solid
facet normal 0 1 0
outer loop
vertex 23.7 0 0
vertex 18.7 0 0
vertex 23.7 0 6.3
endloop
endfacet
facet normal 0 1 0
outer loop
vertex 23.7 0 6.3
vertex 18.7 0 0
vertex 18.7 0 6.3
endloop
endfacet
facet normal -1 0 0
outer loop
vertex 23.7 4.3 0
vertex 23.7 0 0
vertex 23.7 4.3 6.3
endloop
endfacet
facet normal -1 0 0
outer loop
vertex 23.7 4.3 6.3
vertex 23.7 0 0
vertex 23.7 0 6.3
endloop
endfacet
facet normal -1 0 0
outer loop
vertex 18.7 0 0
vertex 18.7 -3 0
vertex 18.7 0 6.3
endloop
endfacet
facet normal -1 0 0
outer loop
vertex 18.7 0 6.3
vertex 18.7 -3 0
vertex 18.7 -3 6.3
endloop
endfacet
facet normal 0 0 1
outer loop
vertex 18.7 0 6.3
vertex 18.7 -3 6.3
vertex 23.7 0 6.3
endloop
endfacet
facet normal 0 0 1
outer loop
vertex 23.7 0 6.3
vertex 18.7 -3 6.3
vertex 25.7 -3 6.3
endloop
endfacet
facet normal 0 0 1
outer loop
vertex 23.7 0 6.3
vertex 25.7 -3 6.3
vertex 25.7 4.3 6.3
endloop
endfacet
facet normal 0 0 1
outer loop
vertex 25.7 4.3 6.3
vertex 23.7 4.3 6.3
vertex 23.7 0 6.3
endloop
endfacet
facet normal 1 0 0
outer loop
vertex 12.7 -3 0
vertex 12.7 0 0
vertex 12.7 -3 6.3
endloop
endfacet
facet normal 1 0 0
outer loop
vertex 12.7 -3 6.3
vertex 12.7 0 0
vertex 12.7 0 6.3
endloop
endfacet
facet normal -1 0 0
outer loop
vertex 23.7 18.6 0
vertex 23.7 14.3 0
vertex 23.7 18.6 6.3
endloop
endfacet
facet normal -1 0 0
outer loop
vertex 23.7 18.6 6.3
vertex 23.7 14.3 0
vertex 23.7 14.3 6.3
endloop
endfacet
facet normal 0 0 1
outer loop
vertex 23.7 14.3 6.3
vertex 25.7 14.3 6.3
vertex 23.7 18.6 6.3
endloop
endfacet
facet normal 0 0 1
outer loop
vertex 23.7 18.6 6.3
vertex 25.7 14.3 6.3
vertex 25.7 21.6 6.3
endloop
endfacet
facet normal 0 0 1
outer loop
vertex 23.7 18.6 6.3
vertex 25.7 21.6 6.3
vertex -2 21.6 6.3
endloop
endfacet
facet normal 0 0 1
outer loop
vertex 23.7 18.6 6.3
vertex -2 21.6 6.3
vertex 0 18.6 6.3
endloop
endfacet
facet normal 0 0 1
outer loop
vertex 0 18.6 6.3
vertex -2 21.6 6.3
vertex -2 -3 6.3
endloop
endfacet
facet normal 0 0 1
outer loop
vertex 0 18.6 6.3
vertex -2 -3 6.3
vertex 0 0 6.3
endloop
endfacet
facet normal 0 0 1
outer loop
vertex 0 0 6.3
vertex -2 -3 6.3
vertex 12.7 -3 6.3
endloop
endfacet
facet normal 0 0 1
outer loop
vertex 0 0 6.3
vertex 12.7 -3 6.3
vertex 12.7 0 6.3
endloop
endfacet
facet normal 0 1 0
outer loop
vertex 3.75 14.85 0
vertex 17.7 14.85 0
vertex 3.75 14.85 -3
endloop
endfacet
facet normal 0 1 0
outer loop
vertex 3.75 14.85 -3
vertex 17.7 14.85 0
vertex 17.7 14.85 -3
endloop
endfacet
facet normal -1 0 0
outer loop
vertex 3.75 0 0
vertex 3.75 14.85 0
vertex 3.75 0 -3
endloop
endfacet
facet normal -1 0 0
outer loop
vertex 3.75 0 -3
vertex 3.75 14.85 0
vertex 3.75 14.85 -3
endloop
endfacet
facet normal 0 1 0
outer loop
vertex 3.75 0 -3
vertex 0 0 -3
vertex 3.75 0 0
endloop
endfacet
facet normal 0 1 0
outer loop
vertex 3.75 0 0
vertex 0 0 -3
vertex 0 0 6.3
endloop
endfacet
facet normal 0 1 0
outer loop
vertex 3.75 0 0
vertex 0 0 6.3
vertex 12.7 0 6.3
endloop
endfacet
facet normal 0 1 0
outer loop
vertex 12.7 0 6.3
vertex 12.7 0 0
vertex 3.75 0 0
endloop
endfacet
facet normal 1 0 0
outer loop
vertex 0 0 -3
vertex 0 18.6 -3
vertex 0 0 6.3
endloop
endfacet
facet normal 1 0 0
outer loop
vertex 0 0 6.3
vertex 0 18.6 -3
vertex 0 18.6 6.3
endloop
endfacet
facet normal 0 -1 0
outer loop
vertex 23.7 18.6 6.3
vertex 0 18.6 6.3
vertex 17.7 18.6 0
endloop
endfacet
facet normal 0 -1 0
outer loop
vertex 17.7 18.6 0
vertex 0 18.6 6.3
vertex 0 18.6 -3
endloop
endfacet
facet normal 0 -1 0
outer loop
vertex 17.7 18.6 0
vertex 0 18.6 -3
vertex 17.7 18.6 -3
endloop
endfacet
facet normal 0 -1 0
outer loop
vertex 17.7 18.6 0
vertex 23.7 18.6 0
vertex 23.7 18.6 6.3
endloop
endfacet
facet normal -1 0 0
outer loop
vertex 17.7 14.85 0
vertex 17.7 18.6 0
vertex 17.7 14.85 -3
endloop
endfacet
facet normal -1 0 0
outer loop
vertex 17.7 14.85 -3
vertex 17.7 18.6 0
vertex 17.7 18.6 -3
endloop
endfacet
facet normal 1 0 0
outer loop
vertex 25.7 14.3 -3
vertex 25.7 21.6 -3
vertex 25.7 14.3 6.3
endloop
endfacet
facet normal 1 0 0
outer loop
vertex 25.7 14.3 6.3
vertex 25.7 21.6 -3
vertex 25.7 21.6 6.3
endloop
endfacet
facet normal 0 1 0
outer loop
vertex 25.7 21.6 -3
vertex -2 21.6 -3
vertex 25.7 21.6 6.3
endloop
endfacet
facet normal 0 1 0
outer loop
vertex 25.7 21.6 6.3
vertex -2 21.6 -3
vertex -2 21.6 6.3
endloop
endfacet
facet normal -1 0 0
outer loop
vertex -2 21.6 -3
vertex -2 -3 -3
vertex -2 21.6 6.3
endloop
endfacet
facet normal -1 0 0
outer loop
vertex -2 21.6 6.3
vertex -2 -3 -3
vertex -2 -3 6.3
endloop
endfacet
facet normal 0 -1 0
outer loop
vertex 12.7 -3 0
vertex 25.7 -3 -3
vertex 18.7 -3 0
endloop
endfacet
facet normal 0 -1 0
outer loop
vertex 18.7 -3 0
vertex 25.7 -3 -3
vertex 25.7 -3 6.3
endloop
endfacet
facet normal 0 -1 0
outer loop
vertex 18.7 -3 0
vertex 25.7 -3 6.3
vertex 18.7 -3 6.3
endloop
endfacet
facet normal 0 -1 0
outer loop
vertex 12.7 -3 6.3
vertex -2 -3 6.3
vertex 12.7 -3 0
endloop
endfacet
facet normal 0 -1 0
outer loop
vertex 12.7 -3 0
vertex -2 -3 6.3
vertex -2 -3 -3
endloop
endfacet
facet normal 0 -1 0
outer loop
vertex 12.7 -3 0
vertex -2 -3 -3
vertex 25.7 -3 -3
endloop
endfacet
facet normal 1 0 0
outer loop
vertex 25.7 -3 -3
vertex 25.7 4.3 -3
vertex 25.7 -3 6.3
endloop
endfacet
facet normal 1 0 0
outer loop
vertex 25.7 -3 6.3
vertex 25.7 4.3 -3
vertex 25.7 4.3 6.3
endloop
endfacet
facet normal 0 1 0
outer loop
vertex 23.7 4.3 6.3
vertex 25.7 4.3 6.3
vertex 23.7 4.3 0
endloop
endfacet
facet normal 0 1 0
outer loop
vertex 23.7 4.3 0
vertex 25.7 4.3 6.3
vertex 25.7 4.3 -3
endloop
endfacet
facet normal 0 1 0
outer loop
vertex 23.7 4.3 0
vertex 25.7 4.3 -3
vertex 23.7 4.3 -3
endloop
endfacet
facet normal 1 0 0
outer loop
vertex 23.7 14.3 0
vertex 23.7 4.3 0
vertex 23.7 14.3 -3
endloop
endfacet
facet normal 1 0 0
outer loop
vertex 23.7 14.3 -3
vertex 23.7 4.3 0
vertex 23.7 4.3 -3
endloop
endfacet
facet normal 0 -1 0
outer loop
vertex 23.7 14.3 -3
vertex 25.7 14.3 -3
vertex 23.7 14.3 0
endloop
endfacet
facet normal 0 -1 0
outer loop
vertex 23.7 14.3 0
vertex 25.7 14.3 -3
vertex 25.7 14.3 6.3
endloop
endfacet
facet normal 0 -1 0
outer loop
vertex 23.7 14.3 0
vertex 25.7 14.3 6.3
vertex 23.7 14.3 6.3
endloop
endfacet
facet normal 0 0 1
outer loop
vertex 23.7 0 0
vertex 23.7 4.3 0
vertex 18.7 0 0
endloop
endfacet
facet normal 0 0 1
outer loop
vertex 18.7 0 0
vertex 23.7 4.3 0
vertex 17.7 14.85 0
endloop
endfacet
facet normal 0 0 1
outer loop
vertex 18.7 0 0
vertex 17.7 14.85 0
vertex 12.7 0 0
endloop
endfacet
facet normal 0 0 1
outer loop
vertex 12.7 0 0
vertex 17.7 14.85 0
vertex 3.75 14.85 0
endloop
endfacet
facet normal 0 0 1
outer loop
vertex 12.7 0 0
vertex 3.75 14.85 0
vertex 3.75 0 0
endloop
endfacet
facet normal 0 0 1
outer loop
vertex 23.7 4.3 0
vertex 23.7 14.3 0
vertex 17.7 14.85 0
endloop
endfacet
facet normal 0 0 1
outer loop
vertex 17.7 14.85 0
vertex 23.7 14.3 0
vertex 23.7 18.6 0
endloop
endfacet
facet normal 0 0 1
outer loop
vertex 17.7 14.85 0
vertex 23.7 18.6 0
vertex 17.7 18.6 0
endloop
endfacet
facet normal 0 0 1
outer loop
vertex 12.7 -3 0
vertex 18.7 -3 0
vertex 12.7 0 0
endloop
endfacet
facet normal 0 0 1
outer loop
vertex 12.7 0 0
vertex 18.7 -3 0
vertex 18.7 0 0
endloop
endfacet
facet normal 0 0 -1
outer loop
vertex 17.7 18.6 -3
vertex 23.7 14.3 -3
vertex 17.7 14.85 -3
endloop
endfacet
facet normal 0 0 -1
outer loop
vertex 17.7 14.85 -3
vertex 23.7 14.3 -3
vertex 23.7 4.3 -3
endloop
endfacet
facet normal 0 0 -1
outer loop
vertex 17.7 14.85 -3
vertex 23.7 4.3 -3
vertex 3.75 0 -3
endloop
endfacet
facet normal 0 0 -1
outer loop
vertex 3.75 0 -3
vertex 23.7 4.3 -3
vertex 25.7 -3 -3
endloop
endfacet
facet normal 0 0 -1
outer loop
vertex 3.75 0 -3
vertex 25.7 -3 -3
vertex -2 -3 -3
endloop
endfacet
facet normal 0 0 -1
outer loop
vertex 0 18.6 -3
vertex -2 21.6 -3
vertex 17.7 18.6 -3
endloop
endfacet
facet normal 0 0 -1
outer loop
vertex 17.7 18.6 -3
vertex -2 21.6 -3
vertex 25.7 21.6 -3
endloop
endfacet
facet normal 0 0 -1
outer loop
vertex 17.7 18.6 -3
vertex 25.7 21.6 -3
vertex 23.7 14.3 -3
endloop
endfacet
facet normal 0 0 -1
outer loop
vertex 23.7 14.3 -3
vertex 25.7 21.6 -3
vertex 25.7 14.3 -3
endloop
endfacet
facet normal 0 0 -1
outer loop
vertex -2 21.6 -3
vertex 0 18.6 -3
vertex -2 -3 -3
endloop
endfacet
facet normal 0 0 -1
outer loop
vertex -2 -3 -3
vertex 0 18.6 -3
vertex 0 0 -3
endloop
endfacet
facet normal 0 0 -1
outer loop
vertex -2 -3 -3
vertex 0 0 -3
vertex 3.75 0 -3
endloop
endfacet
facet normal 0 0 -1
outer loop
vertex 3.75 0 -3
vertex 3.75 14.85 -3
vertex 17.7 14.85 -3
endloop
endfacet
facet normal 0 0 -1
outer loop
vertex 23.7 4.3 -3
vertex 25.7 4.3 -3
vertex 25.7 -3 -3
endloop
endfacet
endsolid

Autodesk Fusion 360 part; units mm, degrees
sketch "Sketch1" plane through (0, 0, 0) normal (0, 0, 1) x (1, 0, 0) in component "case"
  line L0 (0, 0) -> (23.7, 0)
  line L1 (23.7, 0) -> (23.7, 18.6)
  line L2 (23.7, 18.6) -> (0, 18.6)
  line L3 (0, 18.6) -> (0, 0)
  circle A0 centre (21, 16.05) radius 1.5
  circle A1 centre (21, 2.55) radius 1.5
  line L4 (21, 16.05) -> (21, 2.55) construction
  line L5 (23.7, 9.3) -> (0, 9.3) construction
  line L6 (3.75, 0) -> (3.75, 14.85)
  line L7 (3.75, 14.85) -> (17.7, 14.85)
  line L8 (17.7, 14.85) -> (17.7, 18.6)
  line L9 (-2, 21.6) -> (25.7, 21.6)
  line L10 (25.7, 21.6) -> (25.7, -3)
  line L11 (25.7, -3) -> (-2, -3)
  line L12 (-2, -3) -> (-2, 21.6)
  line L13 (11.85, -3) -> (11.85, 21.6) construction
  line L14 (18.7, 0) -> (18.7, -3)
  line L15 (12.7, 0) -> (12.7, -3)
  line L16 (23.7, 14.3) -> (25.7, 14.3)
  line L17 (23.7, 4.3) -> (25.7, 4.3)
  line L18 (24.7, 14.3) -> (24.7, 4.3) construction
  point P0 (21, 9.3)
  point P1 (24.7, 9.3)
  dimension "d1" = 23.7
  dimension "d2" = 18.6
  dimension "d3" = 3
  dimension "d4" = 3
  dimension "d5" = 16.5
  dimension "d6" = 1.2
  dimension "d7" = 6
  dimension "d8" = 3.75
  dimension "d12" = 3
  dimension "d13" = 2
  dimension "d14" = 5
  dimension "d15" = 6
  dimension "d18" = 10
  dimension "d19" = 3.75
extrude "Extrude1" add sketch "Sketch1" against normal blind 3 contours L0 L1 L2 L3 L9 L10 L11 L12 L15 L16 | L0 L1 L2 L6 L7 L8 | L0 L11 L14 L15 | L0 L1 L10 L11 L14 L17 | A0 | A1 in component "case"
extrude "Extrude2" add sketch "Sketch1" along normal blind 6.3 contours L0 L1 L2 L3 L9 L10 L11 L12 L15 L16 | L0 L1 L10 L11 L14 L17 in component "case"
component "case" placed x (1, 0, 0) y (0, 1, 0) z (0, 0, 1) at (0, 0, 0)
equation "d19 = d8"
